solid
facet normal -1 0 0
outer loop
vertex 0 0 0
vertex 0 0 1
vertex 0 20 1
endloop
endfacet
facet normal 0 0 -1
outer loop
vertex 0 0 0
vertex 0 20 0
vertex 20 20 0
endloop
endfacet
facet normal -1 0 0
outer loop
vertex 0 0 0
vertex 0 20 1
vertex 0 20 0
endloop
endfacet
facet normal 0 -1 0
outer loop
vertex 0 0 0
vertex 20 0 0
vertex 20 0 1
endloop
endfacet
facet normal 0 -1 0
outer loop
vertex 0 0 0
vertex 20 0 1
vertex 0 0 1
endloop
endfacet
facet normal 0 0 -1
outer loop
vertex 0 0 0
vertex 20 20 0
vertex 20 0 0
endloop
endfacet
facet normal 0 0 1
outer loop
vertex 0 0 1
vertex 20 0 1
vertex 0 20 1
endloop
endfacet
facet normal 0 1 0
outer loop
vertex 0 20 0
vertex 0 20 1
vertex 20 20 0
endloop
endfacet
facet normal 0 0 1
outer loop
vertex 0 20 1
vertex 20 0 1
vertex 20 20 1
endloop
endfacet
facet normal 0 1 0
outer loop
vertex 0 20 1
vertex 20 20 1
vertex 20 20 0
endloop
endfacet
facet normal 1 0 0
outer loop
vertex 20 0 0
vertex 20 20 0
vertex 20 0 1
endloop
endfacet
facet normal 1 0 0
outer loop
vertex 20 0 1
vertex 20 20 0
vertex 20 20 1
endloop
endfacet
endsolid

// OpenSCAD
/* Warning, this is a very basic generator with a lot of approximation 
input data : [TQFP, 8YX, 20x20x1.0mm, 144, , A, C04-00510A]
generated by com.zoubworld.electronics.cad.model3d.Basic
Date : Sun Feb 15 10:50:48 CET 2026
*/

//body
color("black")
translate([0,0,0])
cube([20.0,20.0,1.0], center=false);
